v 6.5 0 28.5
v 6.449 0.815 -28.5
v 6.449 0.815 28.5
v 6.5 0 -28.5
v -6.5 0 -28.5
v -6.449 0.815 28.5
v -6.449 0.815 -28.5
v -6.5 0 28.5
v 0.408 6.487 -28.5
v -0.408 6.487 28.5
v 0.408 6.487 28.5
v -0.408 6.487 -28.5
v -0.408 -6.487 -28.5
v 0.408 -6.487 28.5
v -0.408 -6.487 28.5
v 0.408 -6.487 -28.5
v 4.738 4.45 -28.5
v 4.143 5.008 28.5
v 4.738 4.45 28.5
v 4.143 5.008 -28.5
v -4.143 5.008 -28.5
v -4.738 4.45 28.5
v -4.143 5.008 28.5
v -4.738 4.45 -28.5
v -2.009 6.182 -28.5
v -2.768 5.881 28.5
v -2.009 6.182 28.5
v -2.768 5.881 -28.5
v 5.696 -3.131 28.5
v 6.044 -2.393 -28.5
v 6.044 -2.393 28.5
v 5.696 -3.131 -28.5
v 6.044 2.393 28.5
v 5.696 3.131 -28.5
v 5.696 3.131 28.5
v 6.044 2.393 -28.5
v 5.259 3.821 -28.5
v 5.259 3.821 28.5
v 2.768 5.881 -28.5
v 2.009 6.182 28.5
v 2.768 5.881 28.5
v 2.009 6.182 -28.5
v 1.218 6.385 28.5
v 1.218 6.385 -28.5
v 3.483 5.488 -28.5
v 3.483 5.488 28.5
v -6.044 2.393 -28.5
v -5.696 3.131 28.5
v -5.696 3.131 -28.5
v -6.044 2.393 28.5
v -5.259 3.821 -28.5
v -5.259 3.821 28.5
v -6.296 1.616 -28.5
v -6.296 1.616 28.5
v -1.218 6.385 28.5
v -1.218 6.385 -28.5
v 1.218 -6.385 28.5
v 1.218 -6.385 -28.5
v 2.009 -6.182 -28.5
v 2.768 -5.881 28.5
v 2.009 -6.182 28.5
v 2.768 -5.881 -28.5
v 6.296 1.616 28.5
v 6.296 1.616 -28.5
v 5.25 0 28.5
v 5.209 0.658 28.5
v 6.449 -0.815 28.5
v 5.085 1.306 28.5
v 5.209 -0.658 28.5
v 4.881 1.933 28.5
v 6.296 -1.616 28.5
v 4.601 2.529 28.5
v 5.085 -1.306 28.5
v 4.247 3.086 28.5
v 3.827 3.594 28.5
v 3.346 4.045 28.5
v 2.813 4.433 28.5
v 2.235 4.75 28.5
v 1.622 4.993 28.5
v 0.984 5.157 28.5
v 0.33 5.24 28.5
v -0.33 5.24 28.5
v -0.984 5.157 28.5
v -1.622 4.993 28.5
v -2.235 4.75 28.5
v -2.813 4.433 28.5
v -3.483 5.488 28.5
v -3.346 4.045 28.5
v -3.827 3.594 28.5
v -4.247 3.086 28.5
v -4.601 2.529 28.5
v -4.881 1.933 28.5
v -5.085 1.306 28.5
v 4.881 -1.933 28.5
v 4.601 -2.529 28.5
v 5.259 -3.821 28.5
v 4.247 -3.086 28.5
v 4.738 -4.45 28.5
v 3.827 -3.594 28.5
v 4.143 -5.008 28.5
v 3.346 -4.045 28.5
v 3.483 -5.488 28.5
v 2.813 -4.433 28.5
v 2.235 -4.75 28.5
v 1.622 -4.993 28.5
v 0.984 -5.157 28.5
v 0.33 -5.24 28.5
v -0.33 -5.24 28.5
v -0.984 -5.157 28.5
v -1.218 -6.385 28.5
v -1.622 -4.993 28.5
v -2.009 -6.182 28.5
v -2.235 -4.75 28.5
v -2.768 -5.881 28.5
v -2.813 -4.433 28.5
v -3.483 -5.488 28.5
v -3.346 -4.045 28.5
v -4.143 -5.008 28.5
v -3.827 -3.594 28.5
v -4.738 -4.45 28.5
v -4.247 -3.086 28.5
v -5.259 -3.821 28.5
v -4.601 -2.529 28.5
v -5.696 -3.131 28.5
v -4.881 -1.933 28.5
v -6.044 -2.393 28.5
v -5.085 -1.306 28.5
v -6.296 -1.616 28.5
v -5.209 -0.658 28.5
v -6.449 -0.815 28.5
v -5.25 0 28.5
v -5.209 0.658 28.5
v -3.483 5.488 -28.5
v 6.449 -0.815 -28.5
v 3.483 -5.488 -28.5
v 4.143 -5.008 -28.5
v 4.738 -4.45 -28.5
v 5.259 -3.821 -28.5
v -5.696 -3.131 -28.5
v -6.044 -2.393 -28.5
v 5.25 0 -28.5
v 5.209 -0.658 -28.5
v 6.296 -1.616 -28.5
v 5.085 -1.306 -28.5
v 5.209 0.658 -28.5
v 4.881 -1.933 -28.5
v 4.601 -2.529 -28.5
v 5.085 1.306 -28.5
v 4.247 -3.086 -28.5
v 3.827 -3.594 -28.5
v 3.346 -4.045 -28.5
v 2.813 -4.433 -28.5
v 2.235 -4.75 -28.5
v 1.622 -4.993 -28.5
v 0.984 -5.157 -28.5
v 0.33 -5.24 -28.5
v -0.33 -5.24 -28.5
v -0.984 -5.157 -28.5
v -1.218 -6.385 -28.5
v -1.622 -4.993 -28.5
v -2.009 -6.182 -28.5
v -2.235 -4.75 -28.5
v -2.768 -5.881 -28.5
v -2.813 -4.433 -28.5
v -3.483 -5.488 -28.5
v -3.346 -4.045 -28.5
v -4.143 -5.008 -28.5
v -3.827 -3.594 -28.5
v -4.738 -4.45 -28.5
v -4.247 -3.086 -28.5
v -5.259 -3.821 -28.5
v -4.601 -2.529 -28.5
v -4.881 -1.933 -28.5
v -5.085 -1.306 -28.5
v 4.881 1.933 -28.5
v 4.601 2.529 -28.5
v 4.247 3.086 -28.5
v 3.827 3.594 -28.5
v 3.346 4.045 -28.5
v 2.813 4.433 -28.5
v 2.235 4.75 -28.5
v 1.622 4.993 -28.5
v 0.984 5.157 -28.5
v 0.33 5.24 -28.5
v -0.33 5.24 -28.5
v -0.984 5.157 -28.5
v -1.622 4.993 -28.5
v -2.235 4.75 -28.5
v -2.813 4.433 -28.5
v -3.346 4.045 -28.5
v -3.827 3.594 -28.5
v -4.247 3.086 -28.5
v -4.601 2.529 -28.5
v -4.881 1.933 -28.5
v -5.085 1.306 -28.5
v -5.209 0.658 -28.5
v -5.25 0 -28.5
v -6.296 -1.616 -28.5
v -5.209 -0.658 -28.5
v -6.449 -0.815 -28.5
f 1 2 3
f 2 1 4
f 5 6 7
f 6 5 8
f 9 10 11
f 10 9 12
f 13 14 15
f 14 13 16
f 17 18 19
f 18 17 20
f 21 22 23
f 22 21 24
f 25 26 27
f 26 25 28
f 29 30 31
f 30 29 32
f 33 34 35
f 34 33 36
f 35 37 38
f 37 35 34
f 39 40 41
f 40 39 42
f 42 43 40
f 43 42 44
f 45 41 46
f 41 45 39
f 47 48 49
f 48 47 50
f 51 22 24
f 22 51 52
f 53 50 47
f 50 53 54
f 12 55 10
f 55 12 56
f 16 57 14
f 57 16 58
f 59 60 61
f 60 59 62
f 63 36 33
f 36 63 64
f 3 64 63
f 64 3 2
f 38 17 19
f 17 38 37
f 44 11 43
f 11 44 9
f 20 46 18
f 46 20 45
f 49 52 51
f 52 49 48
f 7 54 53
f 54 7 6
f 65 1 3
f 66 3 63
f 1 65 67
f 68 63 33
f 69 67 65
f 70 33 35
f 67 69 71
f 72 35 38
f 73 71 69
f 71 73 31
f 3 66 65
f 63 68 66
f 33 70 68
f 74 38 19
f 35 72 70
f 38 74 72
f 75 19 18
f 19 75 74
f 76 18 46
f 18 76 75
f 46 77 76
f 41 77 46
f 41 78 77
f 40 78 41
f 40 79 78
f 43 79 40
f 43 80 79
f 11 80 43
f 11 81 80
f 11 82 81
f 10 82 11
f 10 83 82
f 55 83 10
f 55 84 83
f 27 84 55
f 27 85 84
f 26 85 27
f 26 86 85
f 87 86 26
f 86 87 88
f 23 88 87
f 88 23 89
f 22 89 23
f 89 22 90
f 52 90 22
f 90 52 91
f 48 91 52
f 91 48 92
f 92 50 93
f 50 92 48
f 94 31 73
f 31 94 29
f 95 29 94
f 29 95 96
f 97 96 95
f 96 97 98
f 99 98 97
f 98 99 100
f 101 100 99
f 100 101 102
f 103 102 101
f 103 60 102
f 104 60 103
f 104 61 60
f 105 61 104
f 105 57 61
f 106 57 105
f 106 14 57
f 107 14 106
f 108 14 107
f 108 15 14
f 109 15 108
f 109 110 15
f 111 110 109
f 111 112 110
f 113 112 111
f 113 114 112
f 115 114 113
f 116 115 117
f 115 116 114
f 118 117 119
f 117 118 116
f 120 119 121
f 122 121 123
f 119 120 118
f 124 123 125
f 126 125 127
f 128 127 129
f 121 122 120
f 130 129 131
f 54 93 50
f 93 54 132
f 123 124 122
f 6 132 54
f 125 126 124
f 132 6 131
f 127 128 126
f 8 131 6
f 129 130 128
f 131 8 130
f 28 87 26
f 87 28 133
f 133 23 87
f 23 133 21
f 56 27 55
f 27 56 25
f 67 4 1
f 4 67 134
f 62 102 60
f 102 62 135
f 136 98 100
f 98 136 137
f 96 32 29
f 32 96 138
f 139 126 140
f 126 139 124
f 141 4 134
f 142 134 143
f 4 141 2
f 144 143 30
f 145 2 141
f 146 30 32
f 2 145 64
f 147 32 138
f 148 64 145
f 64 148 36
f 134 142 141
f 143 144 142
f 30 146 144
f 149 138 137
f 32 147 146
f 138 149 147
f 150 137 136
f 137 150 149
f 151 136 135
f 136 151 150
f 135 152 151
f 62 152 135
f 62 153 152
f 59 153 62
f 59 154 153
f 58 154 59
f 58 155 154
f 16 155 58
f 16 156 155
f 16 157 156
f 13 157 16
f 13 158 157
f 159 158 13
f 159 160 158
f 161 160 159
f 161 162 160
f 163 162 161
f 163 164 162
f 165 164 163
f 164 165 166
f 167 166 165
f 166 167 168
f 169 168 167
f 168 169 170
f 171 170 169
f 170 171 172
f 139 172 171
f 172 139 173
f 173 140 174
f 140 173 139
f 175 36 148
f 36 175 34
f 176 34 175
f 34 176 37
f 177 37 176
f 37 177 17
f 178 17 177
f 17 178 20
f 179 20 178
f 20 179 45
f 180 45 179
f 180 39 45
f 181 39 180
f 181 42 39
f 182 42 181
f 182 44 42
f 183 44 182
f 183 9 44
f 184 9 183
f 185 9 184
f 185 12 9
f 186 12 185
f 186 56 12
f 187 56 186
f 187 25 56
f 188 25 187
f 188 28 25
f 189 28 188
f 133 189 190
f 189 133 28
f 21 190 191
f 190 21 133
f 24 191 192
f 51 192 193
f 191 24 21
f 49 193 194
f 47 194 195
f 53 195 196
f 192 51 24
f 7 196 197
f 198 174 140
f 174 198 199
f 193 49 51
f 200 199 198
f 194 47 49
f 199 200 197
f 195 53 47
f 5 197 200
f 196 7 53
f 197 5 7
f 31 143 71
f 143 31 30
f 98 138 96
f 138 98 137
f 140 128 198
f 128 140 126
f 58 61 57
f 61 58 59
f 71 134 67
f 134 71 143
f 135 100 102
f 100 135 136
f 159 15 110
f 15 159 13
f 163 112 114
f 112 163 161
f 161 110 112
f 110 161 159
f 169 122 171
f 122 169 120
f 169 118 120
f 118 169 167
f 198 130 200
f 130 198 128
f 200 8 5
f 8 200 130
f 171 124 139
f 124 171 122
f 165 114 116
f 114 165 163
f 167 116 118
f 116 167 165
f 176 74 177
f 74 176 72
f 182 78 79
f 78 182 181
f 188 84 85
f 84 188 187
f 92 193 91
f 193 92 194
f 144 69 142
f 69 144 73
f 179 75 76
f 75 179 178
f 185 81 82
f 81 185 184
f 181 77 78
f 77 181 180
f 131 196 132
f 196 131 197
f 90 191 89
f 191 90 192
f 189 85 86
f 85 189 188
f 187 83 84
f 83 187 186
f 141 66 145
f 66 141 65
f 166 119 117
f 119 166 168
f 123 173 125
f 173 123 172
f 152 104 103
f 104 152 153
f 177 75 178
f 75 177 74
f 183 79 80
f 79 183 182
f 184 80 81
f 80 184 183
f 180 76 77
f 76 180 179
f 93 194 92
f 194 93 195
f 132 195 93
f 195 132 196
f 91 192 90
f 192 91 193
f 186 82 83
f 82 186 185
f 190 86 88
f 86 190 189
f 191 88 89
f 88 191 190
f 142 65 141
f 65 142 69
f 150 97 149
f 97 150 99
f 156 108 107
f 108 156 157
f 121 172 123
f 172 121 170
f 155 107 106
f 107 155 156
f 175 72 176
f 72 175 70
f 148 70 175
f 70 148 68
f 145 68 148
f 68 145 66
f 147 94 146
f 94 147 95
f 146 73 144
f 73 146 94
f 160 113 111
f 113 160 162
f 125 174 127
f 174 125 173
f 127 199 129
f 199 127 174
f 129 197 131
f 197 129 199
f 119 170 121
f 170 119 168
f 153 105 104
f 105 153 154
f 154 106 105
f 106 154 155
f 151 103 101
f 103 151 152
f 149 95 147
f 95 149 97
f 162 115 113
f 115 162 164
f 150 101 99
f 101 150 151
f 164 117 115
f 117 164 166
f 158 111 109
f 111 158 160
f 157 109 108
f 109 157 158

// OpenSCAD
$fn = 50;


difference() {
	union() {
		translate(v = [0, 0, -28.5000000000]) {
			cylinder(h = 57, r = 6.5000000000);
		}
	}
	union() {
		translate(v = [0, 0, -100.0000000000]) {
			cylinder(h = 200, r = 5.2500000000);
		}
	}
}
